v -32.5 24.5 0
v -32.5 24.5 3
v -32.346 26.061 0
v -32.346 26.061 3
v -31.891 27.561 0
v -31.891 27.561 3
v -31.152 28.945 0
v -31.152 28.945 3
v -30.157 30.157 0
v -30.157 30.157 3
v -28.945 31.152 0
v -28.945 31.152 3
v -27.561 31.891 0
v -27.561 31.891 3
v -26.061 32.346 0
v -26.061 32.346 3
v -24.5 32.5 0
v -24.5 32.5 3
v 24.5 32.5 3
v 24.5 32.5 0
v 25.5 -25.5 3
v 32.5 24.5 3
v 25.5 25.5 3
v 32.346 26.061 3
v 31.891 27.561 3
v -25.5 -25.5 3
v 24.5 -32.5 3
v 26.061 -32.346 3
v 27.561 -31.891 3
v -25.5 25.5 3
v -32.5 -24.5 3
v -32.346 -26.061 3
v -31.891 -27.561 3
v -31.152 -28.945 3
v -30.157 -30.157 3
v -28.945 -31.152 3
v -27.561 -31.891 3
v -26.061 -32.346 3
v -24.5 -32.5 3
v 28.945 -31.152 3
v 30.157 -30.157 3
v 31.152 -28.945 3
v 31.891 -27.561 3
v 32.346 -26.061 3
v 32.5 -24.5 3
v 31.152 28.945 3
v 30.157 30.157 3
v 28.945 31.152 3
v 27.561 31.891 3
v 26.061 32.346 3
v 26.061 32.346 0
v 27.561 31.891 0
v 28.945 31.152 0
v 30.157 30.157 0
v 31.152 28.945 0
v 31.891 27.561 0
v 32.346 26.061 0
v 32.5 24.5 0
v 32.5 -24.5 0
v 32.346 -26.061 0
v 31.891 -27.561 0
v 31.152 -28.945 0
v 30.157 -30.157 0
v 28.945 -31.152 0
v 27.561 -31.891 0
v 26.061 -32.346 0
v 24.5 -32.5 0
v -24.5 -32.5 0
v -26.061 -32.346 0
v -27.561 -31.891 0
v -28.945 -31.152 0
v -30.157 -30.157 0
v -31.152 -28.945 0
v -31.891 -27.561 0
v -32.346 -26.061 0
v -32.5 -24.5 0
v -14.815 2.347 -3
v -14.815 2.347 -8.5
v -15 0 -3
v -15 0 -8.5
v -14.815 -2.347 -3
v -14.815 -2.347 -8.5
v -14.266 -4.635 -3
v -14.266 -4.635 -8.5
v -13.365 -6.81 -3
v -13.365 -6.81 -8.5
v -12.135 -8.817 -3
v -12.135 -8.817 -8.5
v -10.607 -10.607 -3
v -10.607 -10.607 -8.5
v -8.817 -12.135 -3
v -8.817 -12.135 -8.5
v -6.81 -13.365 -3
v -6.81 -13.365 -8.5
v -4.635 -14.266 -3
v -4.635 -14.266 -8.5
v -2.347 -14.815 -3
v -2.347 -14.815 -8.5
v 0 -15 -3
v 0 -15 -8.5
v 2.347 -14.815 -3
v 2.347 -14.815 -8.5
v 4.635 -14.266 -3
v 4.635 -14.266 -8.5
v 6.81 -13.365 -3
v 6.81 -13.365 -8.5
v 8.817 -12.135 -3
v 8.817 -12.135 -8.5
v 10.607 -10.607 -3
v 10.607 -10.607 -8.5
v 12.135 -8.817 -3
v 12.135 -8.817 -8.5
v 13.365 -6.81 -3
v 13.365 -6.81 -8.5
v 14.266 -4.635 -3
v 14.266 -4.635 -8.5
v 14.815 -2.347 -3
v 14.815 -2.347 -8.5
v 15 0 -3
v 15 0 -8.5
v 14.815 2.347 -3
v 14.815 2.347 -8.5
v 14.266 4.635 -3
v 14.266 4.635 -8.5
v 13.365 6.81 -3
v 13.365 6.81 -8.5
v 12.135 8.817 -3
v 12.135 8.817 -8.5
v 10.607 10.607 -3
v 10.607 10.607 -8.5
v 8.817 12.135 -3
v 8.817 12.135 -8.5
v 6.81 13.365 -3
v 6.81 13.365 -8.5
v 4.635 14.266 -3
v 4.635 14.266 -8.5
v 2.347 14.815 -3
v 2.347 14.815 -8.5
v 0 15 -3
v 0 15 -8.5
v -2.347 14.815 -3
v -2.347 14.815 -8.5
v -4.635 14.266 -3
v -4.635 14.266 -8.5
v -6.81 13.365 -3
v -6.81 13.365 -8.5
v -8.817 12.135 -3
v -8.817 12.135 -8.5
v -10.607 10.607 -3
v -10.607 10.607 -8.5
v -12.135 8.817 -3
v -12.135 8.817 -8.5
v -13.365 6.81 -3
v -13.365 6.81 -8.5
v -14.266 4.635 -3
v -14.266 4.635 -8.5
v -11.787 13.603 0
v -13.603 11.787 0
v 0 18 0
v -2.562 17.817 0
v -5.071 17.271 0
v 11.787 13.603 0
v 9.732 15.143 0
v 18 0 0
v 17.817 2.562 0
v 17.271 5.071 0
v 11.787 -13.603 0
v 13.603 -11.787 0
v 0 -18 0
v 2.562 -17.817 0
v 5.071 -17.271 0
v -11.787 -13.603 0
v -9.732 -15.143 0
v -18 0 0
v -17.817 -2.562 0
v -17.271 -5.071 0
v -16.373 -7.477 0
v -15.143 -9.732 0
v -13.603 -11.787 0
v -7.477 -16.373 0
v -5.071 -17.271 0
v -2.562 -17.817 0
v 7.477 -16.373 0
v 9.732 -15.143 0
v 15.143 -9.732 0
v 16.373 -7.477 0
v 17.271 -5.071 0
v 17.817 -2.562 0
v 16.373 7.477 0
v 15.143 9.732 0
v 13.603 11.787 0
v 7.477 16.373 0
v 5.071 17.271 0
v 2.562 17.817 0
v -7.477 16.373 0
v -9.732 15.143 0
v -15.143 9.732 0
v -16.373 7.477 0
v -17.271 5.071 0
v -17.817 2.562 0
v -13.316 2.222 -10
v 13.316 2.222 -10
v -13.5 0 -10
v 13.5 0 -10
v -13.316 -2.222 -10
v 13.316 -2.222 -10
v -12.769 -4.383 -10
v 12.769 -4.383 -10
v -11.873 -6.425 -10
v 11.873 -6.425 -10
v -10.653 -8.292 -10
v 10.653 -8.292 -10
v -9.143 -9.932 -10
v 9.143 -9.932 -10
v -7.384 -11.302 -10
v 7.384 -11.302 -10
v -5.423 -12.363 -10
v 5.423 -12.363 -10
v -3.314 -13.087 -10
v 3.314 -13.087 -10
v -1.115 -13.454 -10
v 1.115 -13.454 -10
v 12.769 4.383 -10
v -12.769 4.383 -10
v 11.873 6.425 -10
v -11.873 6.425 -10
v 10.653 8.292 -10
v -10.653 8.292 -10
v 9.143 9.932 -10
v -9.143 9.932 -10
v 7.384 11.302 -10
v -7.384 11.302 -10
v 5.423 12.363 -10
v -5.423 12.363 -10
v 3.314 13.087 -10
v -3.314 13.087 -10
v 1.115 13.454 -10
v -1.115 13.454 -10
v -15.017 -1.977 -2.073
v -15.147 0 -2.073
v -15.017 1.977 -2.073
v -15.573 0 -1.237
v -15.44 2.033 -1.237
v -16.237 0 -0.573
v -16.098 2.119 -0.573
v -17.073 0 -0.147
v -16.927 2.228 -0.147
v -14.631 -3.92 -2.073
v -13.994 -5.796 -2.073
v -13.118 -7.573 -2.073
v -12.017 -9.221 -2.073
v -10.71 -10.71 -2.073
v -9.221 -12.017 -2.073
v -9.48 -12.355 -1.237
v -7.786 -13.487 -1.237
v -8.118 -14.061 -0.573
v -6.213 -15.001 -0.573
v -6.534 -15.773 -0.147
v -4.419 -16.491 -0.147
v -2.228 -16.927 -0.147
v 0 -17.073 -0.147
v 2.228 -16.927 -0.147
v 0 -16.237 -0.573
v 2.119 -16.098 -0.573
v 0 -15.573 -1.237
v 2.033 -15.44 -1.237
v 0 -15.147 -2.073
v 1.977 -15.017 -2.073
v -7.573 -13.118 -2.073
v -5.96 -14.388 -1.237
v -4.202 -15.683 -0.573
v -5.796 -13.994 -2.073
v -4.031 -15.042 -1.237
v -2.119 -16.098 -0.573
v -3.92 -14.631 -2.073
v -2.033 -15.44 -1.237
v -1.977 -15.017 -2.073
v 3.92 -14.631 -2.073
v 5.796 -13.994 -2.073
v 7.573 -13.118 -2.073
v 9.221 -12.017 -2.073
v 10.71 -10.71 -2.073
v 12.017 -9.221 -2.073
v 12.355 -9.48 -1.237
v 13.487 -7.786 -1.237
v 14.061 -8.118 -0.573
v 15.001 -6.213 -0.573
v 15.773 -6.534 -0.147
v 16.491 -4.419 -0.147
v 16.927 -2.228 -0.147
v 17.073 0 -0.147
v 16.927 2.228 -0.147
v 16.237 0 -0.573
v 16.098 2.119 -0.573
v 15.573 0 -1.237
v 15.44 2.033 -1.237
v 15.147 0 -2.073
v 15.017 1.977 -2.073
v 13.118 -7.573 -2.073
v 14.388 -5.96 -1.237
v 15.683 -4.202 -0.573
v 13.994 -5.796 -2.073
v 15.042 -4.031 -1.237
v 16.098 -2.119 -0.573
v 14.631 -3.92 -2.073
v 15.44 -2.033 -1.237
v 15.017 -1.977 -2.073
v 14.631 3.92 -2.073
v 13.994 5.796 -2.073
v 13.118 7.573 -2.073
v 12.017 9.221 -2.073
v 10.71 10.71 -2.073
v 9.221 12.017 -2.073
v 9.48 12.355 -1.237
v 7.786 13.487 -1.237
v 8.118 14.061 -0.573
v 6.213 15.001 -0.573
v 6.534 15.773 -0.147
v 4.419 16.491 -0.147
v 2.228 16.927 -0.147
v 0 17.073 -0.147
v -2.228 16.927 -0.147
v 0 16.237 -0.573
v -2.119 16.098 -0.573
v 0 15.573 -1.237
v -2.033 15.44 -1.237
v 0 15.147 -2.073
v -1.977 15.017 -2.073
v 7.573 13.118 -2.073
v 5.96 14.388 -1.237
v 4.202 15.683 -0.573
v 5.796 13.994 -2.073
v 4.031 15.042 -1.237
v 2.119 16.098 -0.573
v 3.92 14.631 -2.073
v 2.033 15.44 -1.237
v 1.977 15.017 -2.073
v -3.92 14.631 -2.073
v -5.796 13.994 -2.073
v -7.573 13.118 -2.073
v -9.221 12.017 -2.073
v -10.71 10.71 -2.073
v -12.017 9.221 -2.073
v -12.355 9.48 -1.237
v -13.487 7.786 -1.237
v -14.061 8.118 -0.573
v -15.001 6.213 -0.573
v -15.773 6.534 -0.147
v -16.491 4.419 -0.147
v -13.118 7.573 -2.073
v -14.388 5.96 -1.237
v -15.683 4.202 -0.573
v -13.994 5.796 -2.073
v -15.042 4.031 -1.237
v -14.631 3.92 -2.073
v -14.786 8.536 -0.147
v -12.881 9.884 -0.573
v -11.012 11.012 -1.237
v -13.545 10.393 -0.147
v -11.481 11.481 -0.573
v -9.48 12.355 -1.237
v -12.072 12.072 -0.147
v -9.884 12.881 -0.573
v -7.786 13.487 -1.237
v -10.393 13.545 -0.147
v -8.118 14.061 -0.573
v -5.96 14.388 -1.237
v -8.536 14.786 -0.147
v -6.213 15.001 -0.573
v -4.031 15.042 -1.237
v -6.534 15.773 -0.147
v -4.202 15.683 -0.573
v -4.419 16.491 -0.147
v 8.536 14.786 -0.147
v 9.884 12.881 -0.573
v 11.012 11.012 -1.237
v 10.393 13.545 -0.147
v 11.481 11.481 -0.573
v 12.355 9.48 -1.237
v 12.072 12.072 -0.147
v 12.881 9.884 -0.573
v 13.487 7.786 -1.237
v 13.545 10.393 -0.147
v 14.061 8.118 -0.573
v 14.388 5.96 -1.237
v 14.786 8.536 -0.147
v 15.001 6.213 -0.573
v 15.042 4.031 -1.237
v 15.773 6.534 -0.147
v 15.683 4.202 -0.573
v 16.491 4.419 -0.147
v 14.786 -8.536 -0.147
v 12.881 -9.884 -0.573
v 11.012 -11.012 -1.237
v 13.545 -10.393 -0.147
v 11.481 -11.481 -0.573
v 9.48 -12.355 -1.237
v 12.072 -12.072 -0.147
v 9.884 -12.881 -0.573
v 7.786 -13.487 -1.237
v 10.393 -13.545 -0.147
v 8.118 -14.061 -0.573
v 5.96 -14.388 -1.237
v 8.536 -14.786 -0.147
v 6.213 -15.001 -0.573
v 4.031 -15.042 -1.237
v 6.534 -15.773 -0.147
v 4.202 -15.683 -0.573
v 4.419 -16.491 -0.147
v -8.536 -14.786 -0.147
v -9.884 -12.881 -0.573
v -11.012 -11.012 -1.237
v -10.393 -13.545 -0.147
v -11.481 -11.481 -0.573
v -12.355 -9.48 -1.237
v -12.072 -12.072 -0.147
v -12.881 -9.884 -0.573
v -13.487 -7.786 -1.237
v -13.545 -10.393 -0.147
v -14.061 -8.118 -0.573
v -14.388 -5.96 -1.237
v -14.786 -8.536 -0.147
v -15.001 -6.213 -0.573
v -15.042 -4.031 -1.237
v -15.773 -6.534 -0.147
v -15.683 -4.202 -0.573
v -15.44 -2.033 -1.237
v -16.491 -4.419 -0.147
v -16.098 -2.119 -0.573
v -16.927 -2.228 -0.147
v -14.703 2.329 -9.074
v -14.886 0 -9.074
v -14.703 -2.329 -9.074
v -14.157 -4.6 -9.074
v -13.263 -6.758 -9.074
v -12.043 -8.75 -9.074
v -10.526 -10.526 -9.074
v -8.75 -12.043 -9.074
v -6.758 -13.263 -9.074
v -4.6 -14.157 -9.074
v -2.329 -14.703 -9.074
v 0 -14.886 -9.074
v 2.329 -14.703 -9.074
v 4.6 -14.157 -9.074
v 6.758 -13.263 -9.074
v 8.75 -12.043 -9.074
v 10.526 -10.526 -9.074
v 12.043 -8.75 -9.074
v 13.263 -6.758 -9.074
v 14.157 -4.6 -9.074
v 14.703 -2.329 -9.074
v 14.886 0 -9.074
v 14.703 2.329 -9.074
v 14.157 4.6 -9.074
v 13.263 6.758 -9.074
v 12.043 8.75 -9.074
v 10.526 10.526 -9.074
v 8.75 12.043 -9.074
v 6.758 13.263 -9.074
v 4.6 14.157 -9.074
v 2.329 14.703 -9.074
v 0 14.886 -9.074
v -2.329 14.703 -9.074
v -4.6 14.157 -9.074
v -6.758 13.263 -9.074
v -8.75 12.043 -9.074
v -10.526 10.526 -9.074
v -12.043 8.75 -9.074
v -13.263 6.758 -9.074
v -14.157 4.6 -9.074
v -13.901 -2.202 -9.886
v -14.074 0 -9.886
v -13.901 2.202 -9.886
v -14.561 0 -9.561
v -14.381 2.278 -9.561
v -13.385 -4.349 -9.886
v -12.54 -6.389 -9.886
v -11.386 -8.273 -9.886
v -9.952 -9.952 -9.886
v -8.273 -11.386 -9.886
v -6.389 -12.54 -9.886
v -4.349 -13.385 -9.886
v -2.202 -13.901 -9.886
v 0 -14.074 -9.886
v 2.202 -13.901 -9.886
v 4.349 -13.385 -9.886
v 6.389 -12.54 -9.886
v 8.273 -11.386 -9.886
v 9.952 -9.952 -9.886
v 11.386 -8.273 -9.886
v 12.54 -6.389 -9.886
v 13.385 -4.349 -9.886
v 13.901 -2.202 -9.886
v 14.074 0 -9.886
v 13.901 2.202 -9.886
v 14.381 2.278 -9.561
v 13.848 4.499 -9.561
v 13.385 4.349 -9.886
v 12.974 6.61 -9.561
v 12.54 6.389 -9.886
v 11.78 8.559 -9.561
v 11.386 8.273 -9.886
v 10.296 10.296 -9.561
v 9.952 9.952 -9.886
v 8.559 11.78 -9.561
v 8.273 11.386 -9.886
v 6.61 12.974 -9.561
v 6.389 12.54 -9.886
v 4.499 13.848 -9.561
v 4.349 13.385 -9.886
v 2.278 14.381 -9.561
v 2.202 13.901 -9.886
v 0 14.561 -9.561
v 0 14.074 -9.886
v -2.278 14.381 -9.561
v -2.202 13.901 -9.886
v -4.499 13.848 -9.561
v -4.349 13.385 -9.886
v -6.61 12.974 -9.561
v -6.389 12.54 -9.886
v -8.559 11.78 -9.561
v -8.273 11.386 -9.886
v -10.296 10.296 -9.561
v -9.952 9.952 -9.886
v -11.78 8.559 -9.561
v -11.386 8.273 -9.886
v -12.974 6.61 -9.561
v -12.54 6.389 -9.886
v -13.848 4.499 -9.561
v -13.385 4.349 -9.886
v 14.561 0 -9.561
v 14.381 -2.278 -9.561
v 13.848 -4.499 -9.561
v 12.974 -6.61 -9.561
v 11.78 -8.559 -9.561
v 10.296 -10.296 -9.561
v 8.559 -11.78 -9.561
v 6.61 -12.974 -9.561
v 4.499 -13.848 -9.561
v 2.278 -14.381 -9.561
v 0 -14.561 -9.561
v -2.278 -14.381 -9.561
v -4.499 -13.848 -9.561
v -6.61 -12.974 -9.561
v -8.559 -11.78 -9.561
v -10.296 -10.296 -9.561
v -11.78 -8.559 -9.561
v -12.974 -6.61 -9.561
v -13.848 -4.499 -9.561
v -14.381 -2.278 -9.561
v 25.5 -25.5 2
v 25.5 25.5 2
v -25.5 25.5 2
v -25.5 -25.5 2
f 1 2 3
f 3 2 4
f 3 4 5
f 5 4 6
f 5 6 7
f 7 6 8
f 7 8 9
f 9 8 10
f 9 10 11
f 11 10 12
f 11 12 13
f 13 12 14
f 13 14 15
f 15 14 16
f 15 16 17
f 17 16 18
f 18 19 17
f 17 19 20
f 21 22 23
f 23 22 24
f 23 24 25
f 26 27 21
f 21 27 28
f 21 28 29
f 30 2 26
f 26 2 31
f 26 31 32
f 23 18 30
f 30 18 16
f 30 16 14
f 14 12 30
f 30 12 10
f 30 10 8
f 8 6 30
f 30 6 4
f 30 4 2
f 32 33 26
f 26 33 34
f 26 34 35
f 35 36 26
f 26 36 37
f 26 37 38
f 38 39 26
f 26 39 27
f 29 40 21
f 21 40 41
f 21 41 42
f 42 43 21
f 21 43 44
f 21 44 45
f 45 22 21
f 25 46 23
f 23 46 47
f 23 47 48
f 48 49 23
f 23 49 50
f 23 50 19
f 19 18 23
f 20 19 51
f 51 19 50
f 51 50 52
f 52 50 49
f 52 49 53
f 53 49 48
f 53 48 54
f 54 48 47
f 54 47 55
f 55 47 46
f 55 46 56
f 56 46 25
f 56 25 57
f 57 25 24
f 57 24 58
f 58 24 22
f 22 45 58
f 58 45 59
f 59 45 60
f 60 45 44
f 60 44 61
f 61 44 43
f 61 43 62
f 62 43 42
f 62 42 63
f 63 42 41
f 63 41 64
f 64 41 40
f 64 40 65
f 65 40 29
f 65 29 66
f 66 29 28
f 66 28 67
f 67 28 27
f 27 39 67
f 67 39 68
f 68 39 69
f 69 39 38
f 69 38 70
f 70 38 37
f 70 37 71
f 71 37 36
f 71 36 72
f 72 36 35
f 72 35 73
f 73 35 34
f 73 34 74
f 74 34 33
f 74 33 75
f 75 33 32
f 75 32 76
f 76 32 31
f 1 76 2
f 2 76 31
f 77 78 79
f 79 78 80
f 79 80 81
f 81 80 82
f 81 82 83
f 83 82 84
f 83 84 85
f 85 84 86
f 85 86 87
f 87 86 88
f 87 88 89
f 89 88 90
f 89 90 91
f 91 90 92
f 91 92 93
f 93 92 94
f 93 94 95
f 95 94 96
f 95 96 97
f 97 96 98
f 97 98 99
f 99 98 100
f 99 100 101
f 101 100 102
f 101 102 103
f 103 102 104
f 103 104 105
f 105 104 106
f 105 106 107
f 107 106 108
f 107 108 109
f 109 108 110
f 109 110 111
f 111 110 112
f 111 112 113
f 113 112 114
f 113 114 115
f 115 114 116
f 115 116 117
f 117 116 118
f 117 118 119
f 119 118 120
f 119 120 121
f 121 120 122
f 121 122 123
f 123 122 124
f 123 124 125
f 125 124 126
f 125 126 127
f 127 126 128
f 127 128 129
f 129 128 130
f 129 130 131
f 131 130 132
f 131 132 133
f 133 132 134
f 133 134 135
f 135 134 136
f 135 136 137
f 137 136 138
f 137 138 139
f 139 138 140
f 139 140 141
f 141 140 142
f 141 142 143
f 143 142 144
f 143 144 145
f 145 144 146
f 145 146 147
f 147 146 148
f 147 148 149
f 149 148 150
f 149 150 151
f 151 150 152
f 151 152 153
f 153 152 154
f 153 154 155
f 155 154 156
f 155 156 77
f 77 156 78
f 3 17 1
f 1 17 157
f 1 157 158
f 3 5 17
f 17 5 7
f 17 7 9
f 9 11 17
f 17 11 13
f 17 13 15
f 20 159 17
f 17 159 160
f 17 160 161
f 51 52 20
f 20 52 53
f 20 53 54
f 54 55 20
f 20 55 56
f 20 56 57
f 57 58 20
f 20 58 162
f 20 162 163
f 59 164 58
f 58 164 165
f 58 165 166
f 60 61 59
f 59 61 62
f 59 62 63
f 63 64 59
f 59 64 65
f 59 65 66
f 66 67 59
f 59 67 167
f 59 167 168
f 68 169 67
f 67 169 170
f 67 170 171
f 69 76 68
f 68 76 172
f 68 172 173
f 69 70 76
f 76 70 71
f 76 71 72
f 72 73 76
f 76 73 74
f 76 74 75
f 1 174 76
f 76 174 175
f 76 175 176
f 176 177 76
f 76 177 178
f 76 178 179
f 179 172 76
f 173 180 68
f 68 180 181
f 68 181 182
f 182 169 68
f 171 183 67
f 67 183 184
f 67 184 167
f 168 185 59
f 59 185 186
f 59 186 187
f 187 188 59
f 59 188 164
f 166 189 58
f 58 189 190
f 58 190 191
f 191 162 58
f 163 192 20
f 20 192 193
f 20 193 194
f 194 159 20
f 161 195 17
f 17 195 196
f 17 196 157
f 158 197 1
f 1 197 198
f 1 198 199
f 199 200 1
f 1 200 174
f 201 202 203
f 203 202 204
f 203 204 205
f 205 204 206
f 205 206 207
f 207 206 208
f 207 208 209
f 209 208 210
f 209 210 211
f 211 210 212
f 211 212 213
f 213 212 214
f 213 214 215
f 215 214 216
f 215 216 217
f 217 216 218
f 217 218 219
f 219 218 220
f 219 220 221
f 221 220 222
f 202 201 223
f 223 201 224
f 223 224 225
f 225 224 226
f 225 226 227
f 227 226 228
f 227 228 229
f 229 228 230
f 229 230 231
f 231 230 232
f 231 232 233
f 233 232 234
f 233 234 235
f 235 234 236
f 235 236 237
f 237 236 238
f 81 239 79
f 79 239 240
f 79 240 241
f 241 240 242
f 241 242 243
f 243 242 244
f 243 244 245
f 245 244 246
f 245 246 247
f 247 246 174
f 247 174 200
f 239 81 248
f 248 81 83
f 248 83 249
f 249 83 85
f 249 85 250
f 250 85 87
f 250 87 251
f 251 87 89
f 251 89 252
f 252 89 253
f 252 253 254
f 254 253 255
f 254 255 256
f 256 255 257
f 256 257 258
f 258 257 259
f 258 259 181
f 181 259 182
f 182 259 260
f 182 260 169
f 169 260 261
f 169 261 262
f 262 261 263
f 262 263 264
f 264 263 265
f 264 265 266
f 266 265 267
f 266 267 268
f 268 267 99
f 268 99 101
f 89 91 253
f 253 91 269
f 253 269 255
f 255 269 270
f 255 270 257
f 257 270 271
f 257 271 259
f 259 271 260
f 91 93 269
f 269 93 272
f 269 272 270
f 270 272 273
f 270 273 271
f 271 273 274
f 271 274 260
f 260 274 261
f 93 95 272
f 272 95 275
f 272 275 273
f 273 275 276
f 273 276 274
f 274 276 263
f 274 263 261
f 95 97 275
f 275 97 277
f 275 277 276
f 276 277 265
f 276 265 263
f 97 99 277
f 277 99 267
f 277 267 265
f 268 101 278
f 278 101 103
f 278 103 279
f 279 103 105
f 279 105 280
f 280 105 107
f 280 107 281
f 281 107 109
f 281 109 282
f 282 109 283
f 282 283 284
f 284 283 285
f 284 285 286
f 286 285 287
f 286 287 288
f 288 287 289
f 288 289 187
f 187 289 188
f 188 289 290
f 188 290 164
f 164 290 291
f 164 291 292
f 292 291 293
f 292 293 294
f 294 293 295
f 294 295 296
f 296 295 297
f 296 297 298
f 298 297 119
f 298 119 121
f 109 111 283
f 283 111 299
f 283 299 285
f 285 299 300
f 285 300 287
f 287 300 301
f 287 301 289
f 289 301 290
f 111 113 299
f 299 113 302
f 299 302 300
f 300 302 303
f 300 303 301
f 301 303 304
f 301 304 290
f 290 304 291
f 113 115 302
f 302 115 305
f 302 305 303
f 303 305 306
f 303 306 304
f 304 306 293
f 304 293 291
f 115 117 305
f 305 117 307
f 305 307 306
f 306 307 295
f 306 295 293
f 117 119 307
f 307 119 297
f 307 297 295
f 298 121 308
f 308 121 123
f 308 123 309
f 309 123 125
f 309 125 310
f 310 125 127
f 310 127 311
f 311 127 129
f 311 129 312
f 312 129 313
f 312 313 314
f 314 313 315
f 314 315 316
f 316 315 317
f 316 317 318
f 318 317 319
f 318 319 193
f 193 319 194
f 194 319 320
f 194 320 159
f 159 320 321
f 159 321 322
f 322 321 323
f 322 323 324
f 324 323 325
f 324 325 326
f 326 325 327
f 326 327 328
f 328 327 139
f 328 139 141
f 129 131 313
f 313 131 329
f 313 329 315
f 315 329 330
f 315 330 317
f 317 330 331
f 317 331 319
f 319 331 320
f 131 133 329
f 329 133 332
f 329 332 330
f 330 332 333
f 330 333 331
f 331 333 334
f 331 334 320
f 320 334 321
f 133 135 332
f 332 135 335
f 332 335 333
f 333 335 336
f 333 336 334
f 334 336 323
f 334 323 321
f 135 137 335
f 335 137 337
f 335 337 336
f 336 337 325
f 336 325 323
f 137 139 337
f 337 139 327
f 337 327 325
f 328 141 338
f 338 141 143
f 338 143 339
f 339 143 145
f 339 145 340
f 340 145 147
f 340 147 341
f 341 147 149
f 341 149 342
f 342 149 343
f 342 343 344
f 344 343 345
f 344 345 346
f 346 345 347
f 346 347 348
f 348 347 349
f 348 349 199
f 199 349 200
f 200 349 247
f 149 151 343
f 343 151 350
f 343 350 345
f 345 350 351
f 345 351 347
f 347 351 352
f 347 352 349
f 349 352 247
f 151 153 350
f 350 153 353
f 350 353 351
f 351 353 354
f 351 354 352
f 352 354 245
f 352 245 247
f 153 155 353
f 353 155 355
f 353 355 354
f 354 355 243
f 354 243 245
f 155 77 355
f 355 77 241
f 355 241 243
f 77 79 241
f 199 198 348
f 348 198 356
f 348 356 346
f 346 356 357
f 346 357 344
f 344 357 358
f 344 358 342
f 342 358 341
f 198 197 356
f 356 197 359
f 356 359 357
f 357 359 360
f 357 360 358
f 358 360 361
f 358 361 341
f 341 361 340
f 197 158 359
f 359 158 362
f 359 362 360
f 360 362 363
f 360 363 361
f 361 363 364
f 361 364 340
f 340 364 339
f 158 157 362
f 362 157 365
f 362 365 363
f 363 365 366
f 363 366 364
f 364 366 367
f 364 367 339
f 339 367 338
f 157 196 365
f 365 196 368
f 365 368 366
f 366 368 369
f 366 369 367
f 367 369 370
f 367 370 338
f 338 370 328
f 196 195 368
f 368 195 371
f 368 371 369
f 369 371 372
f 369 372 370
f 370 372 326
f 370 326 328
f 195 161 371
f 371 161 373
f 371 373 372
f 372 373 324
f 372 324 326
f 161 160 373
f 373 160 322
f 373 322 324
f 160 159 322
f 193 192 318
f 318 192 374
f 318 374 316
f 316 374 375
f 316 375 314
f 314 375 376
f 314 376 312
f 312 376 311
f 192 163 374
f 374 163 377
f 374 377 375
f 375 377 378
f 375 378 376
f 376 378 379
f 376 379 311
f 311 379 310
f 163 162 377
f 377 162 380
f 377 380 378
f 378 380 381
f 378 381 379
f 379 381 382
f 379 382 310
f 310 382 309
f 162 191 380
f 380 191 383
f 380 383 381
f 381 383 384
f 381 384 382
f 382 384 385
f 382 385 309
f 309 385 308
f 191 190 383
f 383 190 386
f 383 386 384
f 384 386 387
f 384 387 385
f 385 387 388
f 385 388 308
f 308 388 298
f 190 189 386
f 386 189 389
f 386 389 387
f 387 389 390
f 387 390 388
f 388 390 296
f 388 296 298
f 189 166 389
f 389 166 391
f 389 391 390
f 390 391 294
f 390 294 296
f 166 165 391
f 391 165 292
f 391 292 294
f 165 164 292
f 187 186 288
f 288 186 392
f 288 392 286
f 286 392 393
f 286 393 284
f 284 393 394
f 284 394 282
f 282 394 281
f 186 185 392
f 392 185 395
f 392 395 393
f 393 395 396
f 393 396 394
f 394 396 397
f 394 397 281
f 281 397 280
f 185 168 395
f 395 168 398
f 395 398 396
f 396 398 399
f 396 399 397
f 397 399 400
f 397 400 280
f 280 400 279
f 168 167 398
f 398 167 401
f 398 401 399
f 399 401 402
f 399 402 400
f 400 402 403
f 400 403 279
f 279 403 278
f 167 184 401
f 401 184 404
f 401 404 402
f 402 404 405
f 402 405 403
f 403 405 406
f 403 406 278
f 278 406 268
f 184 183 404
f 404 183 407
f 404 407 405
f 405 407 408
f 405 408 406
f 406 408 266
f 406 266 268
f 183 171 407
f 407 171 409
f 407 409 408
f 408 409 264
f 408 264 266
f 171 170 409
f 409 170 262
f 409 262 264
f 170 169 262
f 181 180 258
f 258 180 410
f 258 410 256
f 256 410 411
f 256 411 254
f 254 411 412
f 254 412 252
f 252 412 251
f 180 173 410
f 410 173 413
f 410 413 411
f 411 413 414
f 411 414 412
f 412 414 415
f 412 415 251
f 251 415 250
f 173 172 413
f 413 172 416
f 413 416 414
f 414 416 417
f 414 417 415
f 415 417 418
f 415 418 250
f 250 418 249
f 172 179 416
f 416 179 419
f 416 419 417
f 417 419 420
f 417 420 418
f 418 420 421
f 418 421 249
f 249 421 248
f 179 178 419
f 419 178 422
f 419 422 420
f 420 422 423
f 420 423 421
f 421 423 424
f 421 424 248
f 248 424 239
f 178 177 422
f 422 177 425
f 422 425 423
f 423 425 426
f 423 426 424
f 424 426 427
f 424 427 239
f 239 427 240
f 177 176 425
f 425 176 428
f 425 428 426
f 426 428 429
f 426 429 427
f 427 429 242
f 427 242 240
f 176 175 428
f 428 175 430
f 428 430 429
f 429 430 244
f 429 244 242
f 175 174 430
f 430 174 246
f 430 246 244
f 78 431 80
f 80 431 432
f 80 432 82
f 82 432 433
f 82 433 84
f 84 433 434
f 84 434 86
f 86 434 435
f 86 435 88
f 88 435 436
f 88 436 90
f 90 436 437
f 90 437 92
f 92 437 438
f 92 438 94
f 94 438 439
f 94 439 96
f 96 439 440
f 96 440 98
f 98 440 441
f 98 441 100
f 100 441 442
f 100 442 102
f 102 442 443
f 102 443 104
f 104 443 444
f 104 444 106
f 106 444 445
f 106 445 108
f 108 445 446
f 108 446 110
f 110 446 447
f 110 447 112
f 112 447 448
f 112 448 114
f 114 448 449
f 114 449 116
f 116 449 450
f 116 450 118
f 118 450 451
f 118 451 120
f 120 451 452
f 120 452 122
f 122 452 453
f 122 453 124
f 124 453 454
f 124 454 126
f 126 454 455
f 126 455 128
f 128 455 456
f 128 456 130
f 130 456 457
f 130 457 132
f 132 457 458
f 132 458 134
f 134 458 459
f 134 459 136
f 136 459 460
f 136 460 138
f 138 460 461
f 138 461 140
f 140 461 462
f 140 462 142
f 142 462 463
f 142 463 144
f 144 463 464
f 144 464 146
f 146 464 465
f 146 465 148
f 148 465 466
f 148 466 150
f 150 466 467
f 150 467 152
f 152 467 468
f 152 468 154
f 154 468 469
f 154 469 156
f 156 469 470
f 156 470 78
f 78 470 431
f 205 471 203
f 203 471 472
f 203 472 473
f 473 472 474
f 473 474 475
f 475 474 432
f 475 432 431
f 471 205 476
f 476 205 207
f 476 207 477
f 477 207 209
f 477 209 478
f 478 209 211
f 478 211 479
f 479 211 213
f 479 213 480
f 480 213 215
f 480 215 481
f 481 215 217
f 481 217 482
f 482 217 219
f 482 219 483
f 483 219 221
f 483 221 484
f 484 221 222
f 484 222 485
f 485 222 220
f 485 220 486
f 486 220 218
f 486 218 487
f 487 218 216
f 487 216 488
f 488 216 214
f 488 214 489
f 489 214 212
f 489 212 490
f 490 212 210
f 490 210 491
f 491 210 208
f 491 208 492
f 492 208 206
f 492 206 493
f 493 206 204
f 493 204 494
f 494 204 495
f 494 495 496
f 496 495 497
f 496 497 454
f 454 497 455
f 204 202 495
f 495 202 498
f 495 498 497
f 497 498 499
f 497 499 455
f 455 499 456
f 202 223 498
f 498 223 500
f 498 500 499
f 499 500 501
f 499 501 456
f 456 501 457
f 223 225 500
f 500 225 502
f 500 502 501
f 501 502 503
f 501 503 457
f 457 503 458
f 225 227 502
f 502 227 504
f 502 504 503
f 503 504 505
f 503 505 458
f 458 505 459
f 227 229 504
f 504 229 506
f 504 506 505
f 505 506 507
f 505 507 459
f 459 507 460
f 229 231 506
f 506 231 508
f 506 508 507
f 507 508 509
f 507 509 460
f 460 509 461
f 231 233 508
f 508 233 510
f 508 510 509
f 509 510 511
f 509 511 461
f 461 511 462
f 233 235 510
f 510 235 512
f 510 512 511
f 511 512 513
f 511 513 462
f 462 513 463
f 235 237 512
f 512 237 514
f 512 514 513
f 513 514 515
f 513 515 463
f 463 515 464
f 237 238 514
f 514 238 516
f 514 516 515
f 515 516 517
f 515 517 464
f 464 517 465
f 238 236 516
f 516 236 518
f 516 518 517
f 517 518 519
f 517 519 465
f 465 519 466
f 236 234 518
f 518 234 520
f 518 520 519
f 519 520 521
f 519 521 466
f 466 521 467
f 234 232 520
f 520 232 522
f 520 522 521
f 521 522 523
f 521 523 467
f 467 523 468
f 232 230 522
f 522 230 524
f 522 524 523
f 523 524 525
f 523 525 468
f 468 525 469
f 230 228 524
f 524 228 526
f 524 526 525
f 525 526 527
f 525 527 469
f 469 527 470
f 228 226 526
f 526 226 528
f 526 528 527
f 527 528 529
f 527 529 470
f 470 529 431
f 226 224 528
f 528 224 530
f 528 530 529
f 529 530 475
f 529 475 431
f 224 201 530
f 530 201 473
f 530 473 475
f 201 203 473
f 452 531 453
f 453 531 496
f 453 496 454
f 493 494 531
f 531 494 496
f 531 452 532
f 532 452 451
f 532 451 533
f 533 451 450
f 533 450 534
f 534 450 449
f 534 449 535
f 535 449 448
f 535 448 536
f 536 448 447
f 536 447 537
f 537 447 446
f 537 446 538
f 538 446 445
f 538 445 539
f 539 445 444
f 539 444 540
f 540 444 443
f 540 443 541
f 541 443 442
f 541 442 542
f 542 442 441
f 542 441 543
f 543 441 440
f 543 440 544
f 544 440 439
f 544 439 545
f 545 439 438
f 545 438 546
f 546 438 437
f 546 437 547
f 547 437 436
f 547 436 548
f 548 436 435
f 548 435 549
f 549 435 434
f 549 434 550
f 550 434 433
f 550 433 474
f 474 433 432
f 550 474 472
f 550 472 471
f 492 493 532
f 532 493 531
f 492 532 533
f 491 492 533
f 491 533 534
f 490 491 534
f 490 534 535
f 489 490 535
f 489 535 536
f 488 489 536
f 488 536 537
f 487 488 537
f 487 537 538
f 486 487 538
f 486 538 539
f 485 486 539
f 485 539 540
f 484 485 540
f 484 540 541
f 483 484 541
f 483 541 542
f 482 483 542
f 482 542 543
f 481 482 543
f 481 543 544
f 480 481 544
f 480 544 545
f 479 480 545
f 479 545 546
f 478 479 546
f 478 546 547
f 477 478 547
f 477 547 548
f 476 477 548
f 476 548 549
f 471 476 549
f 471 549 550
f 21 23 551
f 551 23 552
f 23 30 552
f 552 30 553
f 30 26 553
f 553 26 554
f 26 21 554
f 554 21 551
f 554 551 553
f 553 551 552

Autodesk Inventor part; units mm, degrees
ref_plane "YZ Plane" through (0, 0, 0) normal (1, 0, 0) x (0, 1, 0)
ref_plane "XZ Plane" through (0, 0, 0) normal (0, 1, 0) x (-1, 0, 0)
ref_plane "XY Plane" through (0, 0, 0) normal (0, 0, 1) x (1, 0, 0)
sketch "Sketch1" plane through (0, 0, 0) normal (0, 0, 1) x (1, 0, 0)
  line L0 (-32.5, 32.5) -> (32.5, 32.5)
  line L1 (32.5, 32.5) -> (32.5, -32.5)
  line L2 (32.5, -32.5) -> (-32.5, -32.5)
  line L3 (-32.5, -32.5) -> (-32.5, 32.5)
  line L4 (-32.5, 32.5) -> (32.5, -32.5) construction
  line L5 (32.5, 32.5) -> (-32.5, -32.5) construction
  point P0 (0, 0)
  dimension "d0" = 65
  dimension "d1" = 65
extrude "Extrusion1" add sketch "Sketch1" along normal blind 3
fillet "Fillet1" radius 8 4 edges at (-32.5, -32.5, 1.5) (32.5, -32.5, 1.5) (32.5, 32.5, 1.5) (-32.5, 32.5, 1.5)
sketch "Sketch2" plane through (0, 0, 0) normal (0, 0, -1) x (-1, 0, 0)
  circle A0 centre (0, 0) radius 15
  dimension "d5" = 30
extrude "Extrusion2" add sketch "Sketch2" along normal blind 10
fillet "Fillet2" radius 3 1 edges at (15, 0, 0)
fillet "Fillet3" radius 1.5 1 edges at (15, 0, -10)
sketch "Sketch3" plane through (0, 0, 3) normal (0, 0, 1) x (1, 0, 0)
  line L0 (-25.5, 25.5) -> (25.5, 25.5)
  line L1 (25.5, 25.5) -> (25.5, -25.5)
  line L2 (25.5, -25.5) -> (-25.5, -25.5)
  line L3 (-25.5, -25.5) -> (-25.5, 25.5)
  line L4 (-25.5, 25.5) -> (25.5, -25.5) construction
  line L5 (25.5, 25.5) -> (-25.5, -25.5) construction
  point P0 (0, 0)
  dimension "d10" = 51
  dimension "d11" = 51
extrude "Extrusion3" cut sketch "Sketch3" against normal blind 1
properties part number "square_with_fillet_65mm"
